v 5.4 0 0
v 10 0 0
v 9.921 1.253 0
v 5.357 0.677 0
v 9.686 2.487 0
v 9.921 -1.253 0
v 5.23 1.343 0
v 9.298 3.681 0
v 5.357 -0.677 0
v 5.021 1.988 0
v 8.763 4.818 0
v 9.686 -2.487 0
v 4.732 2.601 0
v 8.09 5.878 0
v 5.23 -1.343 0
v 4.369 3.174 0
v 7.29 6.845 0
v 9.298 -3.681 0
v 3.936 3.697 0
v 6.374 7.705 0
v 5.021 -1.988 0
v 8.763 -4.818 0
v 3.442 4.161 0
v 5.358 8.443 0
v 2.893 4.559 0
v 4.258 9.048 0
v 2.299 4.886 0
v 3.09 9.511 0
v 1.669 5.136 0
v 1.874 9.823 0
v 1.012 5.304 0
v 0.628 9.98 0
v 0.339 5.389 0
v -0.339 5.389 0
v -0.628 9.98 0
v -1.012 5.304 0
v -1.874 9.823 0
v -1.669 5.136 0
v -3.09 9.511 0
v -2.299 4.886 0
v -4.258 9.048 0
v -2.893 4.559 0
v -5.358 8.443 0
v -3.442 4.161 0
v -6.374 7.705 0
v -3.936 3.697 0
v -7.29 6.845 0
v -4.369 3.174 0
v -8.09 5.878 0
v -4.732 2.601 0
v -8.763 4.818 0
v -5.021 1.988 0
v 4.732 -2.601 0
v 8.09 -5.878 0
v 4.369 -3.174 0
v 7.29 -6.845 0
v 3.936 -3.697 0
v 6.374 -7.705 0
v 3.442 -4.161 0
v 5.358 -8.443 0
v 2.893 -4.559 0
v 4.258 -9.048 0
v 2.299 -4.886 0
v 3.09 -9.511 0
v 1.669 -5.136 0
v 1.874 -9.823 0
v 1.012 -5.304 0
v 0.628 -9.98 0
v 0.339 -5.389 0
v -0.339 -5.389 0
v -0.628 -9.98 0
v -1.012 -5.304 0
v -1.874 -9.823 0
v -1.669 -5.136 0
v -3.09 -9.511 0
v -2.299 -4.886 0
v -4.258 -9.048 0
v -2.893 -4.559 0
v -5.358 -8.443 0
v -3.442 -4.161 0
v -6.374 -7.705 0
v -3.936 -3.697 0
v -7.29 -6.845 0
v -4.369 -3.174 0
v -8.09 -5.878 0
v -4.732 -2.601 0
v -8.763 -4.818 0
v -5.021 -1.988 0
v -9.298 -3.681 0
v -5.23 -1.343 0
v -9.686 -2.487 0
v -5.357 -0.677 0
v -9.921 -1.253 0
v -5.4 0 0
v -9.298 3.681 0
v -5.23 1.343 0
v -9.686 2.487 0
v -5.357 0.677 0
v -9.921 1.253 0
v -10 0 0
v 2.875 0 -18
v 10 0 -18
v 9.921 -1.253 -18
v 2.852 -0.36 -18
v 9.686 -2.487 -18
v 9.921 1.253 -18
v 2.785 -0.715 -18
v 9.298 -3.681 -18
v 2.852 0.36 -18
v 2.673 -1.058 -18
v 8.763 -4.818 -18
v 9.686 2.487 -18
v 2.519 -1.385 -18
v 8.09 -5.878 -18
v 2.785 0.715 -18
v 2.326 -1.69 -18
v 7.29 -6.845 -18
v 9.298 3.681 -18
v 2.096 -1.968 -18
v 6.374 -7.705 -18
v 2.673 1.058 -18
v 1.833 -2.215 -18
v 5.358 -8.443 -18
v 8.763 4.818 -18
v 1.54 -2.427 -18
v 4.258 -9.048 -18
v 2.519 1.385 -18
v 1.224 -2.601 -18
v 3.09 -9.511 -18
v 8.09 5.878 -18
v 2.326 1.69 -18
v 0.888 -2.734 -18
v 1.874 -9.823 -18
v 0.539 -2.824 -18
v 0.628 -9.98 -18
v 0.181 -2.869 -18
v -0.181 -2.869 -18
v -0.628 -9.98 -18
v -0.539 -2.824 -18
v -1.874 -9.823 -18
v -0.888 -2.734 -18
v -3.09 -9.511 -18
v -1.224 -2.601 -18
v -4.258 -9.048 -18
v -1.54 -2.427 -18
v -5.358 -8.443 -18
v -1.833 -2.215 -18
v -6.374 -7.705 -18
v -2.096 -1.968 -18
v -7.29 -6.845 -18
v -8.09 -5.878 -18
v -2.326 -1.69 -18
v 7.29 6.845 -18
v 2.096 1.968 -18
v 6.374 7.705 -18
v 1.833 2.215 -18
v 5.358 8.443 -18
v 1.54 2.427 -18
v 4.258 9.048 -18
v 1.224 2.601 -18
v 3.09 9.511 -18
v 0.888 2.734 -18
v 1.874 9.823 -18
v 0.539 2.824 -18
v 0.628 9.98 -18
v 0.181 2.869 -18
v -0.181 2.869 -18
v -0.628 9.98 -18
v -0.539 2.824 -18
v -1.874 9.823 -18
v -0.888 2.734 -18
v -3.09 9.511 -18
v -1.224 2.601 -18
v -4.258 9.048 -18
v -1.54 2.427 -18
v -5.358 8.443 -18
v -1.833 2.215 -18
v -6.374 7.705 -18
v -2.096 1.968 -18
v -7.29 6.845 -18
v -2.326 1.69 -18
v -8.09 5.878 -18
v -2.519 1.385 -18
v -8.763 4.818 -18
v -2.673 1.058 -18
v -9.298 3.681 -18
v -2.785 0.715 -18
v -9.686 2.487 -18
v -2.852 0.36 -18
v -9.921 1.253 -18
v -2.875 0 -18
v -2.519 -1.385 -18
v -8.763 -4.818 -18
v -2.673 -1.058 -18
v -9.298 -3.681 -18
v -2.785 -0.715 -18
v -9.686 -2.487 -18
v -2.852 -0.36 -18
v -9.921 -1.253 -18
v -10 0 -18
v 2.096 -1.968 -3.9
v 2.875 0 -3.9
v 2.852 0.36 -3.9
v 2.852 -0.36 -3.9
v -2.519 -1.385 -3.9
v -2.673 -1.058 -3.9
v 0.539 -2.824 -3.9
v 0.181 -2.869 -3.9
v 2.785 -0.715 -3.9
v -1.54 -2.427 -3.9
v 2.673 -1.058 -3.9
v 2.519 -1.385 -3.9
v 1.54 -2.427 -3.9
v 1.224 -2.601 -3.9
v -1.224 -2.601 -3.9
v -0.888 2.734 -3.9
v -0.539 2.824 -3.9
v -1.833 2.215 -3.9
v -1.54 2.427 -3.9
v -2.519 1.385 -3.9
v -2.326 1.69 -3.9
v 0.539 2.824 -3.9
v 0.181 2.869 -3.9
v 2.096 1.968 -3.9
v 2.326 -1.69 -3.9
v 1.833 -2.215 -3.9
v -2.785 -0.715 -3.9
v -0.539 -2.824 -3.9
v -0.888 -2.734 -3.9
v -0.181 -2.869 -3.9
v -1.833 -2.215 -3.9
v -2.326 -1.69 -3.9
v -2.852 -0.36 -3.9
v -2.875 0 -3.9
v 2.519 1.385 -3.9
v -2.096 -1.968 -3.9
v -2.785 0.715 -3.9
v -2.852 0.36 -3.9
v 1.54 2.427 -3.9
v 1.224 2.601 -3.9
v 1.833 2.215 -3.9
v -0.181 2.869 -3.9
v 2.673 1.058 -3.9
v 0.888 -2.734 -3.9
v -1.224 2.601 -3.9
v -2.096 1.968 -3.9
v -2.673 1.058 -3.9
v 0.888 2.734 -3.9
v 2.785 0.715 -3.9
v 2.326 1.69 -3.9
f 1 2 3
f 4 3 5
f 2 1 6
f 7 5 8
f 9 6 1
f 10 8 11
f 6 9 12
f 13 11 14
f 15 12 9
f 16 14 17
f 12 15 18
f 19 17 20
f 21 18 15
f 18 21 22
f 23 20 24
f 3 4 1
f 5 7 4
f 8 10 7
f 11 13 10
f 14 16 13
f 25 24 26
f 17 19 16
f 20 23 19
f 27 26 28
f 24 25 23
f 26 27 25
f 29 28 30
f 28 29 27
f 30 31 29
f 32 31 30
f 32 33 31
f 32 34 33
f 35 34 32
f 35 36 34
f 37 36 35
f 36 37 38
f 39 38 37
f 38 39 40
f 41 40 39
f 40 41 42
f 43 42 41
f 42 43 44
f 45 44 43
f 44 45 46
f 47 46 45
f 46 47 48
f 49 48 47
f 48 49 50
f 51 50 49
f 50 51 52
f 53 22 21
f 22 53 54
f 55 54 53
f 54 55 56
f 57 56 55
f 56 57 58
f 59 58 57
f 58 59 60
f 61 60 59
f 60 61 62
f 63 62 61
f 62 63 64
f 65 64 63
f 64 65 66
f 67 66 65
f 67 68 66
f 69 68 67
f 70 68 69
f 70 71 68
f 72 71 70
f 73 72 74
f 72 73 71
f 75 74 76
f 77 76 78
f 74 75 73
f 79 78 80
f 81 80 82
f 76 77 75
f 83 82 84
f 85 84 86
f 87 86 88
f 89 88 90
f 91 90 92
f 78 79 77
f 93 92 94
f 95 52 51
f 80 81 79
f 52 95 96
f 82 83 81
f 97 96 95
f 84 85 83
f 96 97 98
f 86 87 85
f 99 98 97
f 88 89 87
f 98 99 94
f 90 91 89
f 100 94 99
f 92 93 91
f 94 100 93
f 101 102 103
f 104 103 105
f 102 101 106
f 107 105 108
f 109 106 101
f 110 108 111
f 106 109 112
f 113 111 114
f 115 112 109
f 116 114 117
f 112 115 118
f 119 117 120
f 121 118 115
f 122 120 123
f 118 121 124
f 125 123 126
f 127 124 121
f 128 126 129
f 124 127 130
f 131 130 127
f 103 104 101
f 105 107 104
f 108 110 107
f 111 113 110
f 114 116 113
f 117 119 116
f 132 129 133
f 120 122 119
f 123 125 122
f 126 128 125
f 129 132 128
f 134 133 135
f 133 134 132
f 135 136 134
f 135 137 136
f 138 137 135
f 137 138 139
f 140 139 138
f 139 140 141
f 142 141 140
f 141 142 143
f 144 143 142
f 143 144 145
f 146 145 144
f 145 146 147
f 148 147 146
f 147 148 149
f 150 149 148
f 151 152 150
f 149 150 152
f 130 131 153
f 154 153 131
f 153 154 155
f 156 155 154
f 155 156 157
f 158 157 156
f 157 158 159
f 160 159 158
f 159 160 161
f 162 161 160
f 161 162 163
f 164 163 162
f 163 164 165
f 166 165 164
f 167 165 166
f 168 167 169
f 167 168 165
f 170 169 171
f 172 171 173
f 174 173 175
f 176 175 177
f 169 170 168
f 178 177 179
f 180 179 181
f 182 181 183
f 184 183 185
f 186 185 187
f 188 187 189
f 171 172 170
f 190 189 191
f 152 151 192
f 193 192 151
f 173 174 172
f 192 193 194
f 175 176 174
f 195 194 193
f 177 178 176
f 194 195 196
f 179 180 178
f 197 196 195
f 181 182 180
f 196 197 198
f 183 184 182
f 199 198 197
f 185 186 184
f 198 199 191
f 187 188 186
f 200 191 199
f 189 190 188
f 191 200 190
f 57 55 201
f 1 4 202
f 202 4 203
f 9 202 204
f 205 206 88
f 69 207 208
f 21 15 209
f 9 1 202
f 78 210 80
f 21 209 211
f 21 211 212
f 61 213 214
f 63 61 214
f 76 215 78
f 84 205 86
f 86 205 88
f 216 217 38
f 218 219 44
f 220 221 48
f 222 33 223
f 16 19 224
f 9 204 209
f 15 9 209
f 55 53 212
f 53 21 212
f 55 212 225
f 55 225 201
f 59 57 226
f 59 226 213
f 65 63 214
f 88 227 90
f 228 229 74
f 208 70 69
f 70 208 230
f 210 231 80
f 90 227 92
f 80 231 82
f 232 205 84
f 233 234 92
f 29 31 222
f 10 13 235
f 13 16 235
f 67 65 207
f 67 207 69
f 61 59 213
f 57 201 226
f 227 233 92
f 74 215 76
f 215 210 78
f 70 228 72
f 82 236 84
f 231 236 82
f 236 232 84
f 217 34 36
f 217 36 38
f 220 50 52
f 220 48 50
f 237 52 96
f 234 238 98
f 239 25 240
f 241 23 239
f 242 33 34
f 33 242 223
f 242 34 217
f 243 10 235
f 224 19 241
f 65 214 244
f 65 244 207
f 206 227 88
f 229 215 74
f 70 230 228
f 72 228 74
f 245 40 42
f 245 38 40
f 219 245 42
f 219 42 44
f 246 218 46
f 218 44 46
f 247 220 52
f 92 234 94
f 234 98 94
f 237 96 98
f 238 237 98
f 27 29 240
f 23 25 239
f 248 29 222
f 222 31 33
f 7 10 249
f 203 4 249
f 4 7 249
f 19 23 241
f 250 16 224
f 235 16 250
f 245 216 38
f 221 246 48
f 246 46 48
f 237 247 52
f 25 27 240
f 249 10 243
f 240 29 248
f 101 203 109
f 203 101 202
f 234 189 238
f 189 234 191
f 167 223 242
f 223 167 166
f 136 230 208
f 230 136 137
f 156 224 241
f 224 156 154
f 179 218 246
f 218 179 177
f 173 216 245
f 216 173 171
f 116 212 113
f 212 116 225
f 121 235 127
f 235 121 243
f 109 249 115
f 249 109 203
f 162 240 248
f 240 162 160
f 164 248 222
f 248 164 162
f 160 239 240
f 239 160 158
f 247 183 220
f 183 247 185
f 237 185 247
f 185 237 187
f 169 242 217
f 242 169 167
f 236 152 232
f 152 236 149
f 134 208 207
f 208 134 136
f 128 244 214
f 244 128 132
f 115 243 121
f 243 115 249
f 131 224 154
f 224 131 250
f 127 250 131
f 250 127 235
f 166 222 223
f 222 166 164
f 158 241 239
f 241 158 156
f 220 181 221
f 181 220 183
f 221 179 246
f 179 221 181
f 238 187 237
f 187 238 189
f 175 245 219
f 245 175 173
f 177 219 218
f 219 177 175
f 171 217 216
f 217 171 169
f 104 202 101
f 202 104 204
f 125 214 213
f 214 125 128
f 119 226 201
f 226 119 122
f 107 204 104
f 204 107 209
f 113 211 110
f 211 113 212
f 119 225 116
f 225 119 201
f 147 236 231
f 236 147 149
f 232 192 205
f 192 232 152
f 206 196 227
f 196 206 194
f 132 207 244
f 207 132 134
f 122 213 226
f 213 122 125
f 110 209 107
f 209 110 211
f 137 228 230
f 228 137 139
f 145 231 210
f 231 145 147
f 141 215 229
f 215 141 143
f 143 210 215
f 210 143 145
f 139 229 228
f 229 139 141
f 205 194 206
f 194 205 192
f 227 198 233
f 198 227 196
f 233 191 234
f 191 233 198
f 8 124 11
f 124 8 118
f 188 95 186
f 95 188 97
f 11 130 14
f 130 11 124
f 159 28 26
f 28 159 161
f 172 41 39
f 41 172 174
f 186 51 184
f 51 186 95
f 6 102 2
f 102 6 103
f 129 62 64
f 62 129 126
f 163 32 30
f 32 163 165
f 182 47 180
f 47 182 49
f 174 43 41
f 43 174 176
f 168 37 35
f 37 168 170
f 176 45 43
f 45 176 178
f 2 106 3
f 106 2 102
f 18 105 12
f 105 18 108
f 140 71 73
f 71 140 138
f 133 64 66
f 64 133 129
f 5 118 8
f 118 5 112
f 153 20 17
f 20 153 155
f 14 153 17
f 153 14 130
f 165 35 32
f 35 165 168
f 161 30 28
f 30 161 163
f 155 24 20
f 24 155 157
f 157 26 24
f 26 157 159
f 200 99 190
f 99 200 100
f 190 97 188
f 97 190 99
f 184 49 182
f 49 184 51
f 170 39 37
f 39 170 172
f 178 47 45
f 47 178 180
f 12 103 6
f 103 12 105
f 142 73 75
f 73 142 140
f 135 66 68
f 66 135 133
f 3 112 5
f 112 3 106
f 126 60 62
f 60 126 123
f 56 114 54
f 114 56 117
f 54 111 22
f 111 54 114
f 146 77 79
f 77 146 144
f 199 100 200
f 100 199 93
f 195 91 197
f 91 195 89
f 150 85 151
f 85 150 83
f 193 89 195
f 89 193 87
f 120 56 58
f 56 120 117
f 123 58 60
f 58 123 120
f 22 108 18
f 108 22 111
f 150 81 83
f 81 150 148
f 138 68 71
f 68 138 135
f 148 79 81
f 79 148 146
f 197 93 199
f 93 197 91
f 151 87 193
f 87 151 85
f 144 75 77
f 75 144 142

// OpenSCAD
$fn = 50;


difference() {
	union() {
		translate(v = [0, 0, -18.0000000000]) {
			cylinder(h = 18, r = 10.0000000000);
		}
		cylinder(h = 0, r = 20.0000000000);
	}
	union() {
		translate(v = [0, 0, 0]) {
			rotate(a = [0, 0, 0]) {
				difference() {
					union() {
						#translate(v = [0, 0, -18.0000000000]) {
							cylinder(h = 18, r = 2.6000000000);
						}
						#translate(v = [0, 0, -3.9000000000]) {
							cylinder(h = 3.9000000000, r = 10.0000000000, r1 = 2.8750000000, r2 = 5.4000000000);
						}
						#translate(v = [0, 0, -18.0000000000]) {
							cylinder(h = 18, r = 2.8750000000);
						}
						#translate(v = [0, 0, -18.0000000000]) {
							cylinder(h = 18, r = 2.6000000000);
						}
					}
					union();
				}
			}
		}
	}
}
